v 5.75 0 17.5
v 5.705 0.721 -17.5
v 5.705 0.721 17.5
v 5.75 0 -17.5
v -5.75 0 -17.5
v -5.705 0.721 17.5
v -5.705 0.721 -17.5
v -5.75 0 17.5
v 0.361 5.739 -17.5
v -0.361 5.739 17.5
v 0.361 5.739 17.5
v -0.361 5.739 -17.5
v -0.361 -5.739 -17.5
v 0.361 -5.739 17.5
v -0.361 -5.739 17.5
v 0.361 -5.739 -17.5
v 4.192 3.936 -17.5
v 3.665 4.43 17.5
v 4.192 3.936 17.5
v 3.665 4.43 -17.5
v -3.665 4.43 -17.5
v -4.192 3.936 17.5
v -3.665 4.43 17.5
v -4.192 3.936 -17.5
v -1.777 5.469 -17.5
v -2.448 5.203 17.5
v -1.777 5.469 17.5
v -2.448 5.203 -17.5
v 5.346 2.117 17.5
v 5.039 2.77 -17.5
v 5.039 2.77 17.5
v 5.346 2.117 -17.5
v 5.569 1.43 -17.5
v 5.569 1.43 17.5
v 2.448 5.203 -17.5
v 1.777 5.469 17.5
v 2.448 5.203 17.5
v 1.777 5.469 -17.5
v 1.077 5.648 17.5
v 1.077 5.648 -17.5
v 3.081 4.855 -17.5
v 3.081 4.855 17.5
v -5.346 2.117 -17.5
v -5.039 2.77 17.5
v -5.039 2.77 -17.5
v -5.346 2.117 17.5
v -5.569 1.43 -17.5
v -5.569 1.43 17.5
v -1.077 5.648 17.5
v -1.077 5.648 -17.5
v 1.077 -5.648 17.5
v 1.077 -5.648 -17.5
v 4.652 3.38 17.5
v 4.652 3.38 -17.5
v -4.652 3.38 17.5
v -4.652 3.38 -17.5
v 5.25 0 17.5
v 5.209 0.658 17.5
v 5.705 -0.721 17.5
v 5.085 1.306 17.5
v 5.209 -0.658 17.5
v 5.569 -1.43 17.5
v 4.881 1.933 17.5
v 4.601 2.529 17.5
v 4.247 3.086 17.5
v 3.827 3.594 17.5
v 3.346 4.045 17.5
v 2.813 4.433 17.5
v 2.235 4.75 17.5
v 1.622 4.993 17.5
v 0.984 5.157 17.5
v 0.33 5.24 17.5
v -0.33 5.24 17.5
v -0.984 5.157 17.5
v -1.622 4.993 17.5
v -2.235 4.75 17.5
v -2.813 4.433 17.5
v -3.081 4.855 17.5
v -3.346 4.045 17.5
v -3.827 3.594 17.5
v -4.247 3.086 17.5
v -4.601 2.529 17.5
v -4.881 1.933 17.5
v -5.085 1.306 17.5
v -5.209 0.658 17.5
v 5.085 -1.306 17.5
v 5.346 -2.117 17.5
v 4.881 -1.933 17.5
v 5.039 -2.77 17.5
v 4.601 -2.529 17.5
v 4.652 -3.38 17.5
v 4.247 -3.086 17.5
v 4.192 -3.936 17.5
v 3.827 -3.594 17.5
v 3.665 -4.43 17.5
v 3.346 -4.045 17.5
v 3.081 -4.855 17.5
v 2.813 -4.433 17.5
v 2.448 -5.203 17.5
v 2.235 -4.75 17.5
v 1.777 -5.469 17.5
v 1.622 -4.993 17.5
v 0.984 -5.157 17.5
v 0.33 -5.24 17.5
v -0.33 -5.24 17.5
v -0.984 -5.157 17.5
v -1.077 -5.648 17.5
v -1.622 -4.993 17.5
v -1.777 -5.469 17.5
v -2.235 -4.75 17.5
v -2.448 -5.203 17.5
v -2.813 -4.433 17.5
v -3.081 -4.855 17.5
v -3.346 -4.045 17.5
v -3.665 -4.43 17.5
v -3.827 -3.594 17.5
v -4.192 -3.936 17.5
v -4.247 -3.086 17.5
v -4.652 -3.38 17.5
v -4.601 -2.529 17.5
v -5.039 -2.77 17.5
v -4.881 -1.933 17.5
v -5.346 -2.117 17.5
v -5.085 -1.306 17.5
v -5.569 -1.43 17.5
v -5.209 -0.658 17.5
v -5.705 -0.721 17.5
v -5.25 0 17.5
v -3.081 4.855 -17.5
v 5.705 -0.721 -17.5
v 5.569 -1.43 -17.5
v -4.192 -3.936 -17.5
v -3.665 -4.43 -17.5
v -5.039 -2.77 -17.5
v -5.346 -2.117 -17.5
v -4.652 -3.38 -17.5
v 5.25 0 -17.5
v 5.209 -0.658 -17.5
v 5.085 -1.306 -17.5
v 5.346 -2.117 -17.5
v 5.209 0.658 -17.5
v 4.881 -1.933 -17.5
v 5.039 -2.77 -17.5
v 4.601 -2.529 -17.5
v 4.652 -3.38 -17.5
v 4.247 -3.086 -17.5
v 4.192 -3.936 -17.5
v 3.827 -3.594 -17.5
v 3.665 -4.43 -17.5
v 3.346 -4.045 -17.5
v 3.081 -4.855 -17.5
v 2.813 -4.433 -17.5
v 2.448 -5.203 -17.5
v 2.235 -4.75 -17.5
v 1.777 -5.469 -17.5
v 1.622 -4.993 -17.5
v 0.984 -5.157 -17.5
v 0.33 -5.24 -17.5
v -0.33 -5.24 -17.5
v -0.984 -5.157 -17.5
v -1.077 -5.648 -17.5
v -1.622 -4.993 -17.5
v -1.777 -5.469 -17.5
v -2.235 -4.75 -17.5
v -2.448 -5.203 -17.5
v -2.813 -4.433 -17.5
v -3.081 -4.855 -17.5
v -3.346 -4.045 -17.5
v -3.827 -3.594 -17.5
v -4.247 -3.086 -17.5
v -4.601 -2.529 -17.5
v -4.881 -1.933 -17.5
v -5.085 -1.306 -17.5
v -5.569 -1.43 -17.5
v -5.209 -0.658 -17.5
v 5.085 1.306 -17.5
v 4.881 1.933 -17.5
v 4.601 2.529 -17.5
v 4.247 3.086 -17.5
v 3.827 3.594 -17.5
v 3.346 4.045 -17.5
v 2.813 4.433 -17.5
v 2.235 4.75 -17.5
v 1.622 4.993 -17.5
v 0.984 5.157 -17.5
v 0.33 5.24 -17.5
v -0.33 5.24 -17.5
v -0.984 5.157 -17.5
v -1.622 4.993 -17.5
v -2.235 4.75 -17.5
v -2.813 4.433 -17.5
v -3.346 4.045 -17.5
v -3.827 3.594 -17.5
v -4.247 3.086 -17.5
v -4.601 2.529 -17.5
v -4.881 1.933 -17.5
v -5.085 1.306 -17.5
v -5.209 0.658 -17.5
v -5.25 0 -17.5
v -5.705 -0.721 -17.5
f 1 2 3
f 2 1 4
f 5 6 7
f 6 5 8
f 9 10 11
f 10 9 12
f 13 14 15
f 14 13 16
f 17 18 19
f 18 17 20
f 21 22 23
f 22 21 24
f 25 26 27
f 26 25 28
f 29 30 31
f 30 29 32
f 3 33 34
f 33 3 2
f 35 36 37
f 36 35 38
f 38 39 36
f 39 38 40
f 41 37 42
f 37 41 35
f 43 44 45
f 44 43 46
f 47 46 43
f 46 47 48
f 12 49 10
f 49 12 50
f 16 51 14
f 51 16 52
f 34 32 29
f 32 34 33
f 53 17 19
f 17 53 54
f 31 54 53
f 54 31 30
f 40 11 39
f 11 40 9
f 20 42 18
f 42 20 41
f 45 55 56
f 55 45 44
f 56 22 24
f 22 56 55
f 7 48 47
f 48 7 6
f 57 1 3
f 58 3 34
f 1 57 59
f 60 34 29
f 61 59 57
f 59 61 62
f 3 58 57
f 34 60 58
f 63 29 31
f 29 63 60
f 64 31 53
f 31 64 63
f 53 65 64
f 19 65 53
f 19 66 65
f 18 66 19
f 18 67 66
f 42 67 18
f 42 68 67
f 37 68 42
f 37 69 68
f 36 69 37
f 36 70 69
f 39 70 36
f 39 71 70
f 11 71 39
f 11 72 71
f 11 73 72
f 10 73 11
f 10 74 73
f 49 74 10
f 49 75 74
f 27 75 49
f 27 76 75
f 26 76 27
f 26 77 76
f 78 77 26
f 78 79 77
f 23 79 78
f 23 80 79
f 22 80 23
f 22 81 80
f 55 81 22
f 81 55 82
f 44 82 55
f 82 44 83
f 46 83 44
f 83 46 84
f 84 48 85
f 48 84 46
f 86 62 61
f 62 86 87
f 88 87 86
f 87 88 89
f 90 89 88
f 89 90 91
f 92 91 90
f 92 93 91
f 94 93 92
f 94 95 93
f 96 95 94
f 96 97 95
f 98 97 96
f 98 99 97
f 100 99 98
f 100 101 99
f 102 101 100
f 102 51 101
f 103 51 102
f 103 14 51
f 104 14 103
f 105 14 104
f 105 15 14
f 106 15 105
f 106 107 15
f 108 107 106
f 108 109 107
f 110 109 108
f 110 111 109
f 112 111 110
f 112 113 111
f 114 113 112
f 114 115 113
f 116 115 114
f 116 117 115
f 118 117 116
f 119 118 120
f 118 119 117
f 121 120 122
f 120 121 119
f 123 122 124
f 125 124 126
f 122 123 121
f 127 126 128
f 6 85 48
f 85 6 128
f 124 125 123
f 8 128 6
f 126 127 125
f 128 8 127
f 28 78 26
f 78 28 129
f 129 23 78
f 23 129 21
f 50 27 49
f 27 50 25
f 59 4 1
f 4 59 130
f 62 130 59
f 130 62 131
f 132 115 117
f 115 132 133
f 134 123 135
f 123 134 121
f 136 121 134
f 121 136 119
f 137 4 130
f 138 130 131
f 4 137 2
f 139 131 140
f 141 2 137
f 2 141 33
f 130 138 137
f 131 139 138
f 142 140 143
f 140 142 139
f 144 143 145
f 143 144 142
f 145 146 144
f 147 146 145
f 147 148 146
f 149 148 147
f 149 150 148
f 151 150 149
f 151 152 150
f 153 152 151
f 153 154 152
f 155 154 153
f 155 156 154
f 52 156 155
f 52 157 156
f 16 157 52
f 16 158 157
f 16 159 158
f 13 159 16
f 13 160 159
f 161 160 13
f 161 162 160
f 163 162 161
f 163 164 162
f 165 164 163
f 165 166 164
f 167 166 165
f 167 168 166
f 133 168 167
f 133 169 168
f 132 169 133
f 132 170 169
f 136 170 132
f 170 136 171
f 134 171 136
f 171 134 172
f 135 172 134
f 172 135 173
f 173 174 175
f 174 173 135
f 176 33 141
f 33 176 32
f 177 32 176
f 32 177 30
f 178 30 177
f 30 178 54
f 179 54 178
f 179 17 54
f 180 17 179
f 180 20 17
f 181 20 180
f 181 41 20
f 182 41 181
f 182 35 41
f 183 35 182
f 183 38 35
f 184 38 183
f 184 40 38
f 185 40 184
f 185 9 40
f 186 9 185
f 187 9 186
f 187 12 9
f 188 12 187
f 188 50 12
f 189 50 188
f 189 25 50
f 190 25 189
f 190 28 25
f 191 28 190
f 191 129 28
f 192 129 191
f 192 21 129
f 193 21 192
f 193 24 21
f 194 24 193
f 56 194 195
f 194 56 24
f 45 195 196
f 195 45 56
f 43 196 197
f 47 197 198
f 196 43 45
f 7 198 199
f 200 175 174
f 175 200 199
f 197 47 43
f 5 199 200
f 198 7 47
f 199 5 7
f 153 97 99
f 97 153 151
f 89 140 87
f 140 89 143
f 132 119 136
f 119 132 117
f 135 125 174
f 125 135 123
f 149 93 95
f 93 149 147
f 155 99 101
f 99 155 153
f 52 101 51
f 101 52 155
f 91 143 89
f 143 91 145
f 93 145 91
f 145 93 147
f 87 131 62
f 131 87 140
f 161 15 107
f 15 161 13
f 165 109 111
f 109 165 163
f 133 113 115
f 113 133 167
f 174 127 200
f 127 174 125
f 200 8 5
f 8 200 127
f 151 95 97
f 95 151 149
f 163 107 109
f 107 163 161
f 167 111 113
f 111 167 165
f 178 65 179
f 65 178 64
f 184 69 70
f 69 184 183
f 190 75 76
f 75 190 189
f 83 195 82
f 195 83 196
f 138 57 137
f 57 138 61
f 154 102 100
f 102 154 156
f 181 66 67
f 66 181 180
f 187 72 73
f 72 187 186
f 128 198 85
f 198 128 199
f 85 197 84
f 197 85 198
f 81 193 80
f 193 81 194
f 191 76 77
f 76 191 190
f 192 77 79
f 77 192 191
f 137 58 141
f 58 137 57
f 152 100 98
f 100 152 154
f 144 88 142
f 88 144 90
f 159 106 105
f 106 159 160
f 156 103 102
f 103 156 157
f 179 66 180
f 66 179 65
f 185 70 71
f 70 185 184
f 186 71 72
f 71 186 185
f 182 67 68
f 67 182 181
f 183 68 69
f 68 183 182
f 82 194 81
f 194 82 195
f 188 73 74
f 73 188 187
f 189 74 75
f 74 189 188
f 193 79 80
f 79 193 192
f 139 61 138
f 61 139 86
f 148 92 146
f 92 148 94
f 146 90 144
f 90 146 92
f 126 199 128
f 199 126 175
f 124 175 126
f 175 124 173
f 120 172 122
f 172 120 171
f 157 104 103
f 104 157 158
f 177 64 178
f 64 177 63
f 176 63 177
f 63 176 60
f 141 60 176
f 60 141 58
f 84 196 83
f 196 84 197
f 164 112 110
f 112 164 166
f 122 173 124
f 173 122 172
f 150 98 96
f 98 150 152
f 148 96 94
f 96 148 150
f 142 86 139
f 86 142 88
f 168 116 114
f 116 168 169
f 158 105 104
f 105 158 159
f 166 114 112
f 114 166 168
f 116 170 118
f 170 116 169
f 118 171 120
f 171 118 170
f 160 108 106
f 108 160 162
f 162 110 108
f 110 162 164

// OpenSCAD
$fn = 50;


difference() {
	union() {
		translate(v = [0, 0, -17.5000000000]) {
			cylinder(h = 35, r = 5.7500000000);
		}
	}
	union() {
		translate(v = [0, 0, -100.0000000000]) {
			cylinder(h = 200, r = 5.2500000000);
		}
	}
}
